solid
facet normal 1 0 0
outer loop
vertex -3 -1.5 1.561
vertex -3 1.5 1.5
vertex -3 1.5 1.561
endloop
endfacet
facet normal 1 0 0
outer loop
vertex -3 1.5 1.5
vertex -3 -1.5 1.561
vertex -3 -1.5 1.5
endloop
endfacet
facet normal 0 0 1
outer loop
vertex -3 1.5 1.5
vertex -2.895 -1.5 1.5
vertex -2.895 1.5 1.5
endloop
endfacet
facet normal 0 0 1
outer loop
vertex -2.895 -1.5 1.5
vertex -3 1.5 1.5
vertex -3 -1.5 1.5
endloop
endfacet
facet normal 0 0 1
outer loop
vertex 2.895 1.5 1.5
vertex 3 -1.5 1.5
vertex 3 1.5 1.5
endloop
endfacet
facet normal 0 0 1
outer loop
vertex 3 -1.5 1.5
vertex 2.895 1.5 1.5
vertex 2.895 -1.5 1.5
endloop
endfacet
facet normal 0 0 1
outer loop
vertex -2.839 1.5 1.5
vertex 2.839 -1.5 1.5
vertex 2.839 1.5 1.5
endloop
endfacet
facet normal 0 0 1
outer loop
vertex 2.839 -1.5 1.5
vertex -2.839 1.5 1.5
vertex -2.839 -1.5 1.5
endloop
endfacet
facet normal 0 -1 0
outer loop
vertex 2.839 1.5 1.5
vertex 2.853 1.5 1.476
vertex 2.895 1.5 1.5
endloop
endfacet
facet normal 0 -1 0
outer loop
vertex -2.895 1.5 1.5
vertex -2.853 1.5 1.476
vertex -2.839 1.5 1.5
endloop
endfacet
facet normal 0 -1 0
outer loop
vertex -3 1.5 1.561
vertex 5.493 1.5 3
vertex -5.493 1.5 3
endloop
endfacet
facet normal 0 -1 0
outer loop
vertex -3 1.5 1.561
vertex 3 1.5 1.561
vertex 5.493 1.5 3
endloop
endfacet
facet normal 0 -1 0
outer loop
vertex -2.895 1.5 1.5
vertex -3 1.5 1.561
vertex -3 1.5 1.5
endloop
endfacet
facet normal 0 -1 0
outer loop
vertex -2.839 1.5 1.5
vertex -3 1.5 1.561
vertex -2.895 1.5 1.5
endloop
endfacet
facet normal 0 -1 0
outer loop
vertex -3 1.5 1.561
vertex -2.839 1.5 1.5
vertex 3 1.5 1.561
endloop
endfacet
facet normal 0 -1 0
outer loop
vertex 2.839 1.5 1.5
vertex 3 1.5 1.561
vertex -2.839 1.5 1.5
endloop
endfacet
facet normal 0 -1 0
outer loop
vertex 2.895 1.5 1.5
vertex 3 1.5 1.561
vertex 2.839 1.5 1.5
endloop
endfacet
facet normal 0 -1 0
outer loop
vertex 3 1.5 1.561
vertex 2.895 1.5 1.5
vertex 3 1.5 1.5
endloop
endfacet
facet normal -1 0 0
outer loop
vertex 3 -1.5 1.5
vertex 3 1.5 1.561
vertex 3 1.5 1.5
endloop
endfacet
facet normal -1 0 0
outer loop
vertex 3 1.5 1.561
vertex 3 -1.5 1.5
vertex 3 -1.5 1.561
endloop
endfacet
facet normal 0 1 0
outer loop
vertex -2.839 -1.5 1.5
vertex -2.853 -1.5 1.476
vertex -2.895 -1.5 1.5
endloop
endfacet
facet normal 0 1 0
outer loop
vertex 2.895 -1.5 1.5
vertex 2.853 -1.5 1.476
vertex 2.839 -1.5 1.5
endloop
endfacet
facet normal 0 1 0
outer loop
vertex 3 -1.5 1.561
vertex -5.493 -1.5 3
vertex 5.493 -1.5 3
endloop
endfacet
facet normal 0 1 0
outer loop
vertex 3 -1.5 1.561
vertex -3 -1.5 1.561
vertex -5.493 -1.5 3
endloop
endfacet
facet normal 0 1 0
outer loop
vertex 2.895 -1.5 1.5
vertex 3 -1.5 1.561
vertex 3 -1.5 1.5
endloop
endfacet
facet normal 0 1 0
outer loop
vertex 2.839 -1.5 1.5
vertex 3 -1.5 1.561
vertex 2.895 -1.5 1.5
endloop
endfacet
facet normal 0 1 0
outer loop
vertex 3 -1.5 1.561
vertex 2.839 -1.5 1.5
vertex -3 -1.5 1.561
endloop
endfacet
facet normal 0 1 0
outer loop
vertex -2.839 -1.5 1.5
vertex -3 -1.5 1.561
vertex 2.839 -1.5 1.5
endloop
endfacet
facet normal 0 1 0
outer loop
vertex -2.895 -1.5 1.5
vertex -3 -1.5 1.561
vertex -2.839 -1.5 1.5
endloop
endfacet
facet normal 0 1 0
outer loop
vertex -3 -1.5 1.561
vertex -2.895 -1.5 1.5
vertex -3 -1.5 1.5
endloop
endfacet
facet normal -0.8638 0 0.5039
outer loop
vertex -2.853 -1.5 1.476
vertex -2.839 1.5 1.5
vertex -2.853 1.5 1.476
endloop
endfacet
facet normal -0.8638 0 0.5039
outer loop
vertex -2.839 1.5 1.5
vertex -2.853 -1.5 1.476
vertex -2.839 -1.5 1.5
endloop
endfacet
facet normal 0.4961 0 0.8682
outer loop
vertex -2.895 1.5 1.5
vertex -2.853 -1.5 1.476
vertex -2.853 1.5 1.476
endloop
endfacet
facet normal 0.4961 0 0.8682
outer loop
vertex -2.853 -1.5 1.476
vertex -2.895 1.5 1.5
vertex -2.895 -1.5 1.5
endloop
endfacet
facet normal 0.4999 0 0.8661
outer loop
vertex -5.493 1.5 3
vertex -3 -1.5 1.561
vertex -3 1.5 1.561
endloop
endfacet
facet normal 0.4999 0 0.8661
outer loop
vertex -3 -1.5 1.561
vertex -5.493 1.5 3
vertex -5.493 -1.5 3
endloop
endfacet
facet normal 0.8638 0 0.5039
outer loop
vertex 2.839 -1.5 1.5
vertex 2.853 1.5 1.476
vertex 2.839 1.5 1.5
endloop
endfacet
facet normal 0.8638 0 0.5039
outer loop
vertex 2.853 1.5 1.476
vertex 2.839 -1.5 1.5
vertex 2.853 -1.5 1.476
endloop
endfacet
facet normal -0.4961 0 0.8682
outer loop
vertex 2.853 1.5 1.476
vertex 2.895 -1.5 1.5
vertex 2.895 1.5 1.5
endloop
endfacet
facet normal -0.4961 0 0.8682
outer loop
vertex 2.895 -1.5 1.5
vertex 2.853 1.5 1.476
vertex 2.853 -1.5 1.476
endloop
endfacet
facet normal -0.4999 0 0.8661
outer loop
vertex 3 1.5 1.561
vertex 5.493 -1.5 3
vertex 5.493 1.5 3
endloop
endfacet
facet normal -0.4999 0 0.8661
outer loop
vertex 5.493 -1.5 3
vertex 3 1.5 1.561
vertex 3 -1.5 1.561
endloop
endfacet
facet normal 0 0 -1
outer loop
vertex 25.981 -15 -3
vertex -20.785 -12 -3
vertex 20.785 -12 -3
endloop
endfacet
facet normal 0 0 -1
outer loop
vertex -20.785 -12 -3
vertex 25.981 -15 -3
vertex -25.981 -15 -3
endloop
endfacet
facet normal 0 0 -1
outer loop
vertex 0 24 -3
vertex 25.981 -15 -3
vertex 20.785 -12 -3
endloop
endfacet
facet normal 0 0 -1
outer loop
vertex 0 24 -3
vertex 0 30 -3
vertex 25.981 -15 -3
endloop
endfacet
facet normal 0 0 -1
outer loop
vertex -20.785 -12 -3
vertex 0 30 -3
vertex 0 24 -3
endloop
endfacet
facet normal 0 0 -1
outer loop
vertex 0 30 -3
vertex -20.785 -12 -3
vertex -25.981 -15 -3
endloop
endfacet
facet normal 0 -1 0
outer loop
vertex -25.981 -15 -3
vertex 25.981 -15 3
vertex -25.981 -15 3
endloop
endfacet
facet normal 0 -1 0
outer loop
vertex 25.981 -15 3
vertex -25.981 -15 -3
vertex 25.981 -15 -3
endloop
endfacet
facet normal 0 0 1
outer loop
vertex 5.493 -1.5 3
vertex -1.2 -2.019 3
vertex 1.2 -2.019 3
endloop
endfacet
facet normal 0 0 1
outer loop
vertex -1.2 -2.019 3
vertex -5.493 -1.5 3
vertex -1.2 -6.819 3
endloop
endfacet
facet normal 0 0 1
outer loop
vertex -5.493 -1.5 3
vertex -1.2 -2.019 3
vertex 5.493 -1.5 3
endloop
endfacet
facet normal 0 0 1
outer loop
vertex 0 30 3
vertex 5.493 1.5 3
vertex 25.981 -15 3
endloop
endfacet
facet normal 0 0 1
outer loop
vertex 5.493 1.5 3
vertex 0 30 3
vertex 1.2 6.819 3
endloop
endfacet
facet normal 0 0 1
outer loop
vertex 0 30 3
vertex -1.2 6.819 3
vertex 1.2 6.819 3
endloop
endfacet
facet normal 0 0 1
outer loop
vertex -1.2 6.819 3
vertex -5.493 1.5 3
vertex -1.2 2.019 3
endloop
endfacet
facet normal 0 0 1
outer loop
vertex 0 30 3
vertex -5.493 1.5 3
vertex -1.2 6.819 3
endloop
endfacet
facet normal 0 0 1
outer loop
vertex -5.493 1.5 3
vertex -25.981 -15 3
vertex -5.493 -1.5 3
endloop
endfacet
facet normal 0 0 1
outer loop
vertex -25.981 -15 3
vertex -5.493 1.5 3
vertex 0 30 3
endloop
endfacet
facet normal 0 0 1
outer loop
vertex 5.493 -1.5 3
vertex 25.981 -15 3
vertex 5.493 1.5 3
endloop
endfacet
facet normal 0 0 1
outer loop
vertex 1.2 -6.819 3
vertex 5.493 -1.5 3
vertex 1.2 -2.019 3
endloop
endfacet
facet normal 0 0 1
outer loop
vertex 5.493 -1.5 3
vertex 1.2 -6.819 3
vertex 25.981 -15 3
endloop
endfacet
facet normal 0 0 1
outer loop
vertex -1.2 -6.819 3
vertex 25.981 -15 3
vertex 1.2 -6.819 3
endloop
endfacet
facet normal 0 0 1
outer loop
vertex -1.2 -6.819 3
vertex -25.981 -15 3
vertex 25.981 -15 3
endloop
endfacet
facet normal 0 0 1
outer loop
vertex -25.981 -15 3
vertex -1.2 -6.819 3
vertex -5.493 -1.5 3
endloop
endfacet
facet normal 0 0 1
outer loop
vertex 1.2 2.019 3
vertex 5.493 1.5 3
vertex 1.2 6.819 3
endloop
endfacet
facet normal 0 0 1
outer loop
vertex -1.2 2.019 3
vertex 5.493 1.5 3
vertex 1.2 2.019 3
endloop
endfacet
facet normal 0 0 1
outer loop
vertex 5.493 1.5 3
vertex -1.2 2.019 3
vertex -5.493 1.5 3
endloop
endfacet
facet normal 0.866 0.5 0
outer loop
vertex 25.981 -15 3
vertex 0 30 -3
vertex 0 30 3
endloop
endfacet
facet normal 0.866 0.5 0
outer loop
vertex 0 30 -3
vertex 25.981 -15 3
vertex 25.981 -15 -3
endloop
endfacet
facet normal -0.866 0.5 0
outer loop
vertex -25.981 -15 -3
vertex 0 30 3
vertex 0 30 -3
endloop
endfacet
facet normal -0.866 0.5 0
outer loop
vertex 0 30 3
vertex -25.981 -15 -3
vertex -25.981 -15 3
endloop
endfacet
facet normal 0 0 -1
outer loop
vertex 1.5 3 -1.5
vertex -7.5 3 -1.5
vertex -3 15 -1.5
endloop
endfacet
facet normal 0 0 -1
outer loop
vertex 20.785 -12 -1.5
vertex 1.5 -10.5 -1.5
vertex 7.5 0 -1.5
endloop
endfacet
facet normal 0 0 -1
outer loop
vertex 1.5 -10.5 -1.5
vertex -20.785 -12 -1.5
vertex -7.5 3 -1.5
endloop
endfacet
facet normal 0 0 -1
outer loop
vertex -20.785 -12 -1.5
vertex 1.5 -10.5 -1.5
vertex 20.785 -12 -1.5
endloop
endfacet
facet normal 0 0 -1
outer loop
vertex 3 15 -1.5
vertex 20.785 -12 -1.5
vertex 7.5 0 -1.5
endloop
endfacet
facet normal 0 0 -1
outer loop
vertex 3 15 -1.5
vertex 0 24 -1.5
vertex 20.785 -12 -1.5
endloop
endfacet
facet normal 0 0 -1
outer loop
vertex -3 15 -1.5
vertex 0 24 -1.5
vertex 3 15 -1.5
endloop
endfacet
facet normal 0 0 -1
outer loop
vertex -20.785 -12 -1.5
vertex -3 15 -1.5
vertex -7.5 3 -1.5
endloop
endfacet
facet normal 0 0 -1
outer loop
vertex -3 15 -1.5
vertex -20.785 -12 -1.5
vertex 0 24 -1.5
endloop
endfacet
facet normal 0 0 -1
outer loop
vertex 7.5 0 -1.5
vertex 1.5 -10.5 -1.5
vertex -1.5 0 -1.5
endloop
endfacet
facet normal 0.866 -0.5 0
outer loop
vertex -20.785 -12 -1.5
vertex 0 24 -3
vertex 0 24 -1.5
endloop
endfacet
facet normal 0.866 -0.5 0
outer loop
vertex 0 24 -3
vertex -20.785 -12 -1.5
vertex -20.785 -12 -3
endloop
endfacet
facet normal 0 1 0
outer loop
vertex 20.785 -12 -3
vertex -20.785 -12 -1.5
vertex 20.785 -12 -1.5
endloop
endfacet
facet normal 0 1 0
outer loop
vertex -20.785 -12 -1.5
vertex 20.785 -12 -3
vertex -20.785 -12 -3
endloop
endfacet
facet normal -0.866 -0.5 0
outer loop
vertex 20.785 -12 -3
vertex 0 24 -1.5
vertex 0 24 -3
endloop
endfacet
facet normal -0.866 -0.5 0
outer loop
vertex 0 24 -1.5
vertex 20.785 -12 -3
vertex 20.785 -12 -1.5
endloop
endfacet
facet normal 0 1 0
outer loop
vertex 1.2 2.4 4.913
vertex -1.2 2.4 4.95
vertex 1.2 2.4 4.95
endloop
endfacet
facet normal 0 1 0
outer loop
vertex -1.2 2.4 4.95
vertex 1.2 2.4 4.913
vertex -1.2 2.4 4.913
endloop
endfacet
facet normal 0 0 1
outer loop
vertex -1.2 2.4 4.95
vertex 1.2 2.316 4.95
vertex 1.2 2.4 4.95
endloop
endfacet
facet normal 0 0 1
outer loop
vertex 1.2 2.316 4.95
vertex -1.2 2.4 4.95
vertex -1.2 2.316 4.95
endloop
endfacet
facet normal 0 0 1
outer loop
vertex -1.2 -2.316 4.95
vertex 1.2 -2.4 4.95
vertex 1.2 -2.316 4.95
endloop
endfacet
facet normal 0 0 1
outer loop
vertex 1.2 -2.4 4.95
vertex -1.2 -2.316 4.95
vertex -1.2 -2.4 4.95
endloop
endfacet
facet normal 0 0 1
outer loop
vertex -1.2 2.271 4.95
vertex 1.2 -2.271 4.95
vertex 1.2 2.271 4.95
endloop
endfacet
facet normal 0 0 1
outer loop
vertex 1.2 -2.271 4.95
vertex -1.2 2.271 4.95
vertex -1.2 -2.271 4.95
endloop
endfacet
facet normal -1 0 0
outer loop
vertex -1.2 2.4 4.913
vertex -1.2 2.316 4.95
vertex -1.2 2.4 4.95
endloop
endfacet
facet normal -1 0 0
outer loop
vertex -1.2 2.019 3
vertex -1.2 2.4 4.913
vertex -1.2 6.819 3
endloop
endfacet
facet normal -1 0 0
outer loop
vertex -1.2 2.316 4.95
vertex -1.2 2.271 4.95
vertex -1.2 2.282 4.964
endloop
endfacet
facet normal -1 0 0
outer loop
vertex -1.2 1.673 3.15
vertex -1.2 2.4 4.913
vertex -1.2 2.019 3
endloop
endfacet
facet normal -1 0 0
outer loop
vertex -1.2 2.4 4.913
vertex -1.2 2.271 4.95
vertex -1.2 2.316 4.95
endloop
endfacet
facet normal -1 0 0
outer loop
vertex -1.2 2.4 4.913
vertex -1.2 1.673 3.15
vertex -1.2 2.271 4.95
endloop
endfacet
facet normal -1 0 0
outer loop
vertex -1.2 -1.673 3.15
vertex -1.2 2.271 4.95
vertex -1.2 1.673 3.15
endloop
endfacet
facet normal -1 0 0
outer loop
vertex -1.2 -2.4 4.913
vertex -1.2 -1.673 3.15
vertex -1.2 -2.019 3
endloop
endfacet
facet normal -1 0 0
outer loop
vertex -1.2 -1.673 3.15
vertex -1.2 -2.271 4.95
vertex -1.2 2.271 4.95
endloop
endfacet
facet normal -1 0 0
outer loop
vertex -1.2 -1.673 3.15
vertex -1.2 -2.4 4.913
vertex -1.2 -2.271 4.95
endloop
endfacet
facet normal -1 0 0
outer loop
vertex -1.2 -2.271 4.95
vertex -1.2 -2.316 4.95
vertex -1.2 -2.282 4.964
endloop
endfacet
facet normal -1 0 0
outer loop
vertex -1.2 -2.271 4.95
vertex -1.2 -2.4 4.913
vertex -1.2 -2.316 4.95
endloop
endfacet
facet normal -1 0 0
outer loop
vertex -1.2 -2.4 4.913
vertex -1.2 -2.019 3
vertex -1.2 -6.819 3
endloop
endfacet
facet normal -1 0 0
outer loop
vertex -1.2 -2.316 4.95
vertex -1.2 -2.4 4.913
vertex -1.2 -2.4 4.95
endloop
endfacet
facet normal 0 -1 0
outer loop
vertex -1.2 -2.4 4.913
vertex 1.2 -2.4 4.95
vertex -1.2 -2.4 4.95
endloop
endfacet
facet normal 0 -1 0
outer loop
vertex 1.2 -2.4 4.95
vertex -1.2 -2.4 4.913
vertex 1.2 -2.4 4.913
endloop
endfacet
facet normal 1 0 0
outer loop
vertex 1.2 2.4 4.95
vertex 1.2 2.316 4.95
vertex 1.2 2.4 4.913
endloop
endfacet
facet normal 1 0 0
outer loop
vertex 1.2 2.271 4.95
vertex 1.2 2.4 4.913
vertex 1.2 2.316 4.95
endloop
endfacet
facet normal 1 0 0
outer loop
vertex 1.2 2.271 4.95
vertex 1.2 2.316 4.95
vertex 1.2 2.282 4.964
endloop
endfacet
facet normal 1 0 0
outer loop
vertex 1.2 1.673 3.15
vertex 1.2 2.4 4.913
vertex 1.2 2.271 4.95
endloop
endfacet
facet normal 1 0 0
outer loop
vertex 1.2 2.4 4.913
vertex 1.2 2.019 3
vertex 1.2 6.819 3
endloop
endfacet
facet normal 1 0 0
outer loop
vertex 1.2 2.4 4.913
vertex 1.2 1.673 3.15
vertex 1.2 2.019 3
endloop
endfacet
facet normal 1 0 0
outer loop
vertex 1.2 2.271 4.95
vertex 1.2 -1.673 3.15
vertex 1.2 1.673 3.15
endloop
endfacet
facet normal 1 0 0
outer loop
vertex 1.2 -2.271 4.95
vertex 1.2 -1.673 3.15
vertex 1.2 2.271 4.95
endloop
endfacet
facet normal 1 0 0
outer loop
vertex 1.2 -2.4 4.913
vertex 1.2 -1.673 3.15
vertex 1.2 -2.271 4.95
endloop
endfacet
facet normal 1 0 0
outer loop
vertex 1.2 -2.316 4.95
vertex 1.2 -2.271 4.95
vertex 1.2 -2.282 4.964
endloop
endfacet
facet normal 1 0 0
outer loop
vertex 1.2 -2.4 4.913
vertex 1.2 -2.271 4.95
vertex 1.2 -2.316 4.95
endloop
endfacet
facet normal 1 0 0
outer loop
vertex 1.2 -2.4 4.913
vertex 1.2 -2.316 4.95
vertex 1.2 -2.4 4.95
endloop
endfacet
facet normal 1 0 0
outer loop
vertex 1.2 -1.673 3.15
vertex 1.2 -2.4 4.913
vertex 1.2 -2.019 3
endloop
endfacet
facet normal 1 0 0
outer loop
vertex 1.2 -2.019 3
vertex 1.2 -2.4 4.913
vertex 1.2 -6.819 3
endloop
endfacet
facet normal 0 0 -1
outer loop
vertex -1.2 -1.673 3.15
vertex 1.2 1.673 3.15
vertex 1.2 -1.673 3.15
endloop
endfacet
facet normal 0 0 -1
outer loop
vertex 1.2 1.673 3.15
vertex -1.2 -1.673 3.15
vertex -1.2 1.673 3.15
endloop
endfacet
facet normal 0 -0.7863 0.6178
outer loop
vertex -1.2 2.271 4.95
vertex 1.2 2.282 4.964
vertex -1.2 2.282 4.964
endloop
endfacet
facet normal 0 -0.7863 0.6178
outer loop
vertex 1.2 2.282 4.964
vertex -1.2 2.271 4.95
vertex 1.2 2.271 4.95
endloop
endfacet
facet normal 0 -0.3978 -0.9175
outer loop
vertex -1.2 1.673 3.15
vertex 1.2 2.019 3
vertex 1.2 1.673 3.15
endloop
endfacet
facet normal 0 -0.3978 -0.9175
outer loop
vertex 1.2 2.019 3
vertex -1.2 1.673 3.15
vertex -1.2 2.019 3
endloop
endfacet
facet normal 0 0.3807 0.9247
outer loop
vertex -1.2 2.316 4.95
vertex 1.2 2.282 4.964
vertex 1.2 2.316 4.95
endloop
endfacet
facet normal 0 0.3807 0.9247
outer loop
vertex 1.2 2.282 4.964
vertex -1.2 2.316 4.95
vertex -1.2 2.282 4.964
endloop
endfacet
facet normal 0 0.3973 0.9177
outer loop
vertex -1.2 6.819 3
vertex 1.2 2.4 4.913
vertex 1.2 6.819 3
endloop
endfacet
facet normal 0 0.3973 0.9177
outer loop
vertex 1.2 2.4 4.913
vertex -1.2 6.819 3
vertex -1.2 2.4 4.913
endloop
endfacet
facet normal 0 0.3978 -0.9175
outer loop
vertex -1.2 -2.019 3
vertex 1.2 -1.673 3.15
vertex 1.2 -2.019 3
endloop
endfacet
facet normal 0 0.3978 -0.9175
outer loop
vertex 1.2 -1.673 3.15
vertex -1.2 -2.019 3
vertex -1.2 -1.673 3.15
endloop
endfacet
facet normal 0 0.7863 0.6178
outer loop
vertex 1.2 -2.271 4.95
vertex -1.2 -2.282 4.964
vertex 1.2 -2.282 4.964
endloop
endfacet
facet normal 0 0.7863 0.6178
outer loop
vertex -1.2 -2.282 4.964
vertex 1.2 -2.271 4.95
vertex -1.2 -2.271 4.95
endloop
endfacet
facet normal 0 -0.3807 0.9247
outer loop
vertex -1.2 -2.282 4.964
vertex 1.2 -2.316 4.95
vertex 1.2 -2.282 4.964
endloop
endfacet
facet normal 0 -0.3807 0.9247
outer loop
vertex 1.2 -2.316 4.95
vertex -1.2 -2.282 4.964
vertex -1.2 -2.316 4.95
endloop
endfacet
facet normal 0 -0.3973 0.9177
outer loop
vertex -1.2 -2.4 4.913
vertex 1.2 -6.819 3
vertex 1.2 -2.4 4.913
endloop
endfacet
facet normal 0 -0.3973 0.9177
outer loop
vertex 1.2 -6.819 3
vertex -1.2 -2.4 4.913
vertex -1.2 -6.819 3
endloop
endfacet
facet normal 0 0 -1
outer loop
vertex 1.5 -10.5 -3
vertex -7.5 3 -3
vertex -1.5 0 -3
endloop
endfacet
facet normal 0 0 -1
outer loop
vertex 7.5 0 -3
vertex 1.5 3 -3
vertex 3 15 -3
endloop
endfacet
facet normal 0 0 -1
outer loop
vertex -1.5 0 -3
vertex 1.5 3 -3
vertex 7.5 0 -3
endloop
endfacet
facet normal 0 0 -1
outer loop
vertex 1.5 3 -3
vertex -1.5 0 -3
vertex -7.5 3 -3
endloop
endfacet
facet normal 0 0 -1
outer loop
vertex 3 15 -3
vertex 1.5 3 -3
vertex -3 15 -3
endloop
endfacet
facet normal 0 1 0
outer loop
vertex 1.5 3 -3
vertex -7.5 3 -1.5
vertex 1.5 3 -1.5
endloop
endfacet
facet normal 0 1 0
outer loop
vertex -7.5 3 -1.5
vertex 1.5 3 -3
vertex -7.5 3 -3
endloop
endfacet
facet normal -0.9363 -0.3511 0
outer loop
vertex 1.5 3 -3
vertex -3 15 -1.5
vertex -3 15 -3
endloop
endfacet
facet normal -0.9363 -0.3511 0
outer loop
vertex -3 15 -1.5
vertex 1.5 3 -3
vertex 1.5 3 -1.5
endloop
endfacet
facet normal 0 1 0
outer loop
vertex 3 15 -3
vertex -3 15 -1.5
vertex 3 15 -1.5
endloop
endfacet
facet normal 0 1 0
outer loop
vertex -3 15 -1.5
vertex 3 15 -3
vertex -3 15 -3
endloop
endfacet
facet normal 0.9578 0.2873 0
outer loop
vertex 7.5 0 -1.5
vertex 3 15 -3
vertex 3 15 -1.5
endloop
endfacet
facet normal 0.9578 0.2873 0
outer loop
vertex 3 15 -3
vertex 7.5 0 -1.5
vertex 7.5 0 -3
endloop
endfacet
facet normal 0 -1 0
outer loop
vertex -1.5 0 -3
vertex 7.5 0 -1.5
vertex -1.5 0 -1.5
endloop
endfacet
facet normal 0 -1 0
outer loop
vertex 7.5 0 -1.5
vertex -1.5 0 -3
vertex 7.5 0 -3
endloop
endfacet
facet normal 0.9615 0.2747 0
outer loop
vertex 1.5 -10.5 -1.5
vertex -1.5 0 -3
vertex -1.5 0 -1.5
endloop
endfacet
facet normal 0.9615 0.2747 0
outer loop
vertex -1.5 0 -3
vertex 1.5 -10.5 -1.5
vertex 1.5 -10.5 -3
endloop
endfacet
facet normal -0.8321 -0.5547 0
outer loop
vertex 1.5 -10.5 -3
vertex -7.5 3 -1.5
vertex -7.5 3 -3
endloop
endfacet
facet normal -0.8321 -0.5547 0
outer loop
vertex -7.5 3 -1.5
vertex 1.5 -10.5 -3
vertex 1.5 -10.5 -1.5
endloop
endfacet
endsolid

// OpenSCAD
r = 20;
module triangle(l, r){
    linear_extrude(l){
        polygon([
            [cos(90)*r, sin(90)*r],
            [cos(210)*r, sin(210)*r],
            [cos(330)*r, sin(330)*r]
        ]);
    }
}

module pin_part(){
            translate([0,0,2])
            rotate([0, 90, 90])
            cube([2, 2, 4], center = true);
            
            translate([0,4,0.65])
            rotate([60, 0, 0])
            cube([2, 2, 6], center = true);
            
            translate([0,-4,0.65])
            rotate([-60, 0, 0])
            cube([2, 2, 6], center = true);
}

scale([1.5, 1.5, 1.5])
union(){
    difference(){
        color("black")
        translate([0, 0, -2])
        triangle(4, r);
        
        color("yellow")
        rotate([0, 180, 0])
        translate([0, 0, 1])
        triangle(2, r-4);
        
        translate([0, 0, 4])
        rotate([0, 180, 90])
        pin_part();
    }
    translate([0, 0, 1.5])
    scale([0.8, 0.8, 0.6])
    pin_part();

    color("black")
    rotate([0, 180, 0])
    translate([0, 0, 1])
    linear_extrude(1){
        
        polygon(
            [
            [-2, 10],
            [2, 10],
            [-1, 2],
            [5,  2],
            [-1, -7],
            [1, 0],
            [-5,0]
        ]
        );
    }
}
